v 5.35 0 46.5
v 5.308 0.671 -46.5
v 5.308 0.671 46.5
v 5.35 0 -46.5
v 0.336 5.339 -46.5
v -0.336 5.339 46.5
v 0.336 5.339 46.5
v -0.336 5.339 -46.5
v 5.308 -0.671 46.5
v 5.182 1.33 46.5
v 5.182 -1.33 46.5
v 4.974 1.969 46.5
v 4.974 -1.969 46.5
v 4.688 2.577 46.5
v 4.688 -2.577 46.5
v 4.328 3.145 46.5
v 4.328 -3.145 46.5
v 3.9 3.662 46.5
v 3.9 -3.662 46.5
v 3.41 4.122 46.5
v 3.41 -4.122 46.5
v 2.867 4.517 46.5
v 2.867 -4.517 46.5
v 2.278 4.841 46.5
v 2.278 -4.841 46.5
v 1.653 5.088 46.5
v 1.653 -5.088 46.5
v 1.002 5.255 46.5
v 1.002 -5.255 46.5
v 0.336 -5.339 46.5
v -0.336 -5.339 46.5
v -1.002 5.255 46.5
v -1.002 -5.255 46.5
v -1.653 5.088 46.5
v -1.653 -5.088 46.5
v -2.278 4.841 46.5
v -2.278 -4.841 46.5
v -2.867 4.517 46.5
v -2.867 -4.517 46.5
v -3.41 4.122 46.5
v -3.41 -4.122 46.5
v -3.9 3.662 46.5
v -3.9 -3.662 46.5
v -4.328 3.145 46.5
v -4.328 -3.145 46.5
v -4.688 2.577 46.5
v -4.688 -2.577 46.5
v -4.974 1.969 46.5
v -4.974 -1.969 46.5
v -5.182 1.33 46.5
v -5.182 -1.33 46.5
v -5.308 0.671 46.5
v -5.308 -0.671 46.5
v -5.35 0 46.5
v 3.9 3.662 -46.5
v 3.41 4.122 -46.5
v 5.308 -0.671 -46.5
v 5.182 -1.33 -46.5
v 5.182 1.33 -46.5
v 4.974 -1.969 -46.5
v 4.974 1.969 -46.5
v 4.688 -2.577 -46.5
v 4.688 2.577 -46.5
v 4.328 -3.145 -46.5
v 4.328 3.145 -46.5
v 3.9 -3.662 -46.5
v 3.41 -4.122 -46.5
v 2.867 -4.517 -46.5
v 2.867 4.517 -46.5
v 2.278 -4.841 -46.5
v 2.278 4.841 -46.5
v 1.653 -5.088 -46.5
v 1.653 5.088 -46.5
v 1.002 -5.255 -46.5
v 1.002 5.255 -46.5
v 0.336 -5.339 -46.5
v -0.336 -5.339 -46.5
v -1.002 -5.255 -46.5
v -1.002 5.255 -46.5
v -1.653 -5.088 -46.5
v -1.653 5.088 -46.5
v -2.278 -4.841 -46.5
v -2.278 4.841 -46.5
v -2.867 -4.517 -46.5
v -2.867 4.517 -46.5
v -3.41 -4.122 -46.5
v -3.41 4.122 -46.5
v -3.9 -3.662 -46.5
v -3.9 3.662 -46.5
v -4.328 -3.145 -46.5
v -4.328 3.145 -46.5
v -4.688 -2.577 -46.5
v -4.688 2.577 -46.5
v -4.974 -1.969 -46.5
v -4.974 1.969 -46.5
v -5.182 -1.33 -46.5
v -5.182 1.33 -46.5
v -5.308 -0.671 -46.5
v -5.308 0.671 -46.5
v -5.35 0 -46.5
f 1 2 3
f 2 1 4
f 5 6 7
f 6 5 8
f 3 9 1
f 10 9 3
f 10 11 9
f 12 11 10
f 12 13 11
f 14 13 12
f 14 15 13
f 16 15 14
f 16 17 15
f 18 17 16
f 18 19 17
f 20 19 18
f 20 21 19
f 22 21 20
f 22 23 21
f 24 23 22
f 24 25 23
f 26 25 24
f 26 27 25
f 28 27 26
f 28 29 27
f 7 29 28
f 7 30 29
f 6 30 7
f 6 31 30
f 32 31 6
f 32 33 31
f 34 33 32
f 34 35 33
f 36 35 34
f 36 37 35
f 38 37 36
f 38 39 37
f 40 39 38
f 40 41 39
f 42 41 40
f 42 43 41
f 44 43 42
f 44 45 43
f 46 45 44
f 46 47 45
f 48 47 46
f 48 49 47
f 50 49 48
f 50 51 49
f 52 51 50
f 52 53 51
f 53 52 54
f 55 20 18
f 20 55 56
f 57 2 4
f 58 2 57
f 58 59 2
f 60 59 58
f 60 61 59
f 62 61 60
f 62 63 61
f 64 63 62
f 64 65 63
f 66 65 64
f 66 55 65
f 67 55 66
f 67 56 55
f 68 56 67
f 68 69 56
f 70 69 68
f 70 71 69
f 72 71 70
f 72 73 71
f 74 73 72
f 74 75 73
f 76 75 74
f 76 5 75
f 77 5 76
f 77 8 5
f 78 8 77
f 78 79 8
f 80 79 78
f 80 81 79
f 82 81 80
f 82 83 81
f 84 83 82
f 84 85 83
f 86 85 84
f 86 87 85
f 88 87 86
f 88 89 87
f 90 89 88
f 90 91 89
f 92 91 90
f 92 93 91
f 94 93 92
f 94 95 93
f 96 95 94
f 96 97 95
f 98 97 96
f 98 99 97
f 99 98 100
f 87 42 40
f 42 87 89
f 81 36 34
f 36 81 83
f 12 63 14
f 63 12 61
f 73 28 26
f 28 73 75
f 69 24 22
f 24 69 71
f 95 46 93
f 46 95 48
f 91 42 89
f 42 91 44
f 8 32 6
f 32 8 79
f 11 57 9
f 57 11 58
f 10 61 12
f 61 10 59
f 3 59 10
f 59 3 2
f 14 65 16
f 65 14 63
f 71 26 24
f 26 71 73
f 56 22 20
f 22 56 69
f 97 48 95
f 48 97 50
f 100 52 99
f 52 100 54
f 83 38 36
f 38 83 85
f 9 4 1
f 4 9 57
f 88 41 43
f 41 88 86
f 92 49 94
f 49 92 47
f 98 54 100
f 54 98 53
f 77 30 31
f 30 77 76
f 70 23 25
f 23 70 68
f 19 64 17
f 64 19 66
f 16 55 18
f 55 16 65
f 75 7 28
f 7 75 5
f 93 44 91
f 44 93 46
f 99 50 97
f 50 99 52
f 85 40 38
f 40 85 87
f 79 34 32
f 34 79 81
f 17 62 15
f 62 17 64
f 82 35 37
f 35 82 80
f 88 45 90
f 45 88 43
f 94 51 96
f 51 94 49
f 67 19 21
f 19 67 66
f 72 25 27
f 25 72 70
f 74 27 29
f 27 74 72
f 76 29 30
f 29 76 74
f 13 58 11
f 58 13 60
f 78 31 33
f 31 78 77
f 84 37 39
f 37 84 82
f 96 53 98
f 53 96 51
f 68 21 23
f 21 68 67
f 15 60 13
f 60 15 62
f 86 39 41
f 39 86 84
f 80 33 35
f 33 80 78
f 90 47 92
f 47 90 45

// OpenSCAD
$fn = 50;


difference() {
	union() {
		translate(v = [0, 0, -46.5000000000]) {
			cylinder(h = 93, r = 5.3500000000);
		}
	}
	union() {
		translate(v = [0, 0, -100.0000000000]) {
			cylinder(h = 200, r = 0);
		}
	}
}
